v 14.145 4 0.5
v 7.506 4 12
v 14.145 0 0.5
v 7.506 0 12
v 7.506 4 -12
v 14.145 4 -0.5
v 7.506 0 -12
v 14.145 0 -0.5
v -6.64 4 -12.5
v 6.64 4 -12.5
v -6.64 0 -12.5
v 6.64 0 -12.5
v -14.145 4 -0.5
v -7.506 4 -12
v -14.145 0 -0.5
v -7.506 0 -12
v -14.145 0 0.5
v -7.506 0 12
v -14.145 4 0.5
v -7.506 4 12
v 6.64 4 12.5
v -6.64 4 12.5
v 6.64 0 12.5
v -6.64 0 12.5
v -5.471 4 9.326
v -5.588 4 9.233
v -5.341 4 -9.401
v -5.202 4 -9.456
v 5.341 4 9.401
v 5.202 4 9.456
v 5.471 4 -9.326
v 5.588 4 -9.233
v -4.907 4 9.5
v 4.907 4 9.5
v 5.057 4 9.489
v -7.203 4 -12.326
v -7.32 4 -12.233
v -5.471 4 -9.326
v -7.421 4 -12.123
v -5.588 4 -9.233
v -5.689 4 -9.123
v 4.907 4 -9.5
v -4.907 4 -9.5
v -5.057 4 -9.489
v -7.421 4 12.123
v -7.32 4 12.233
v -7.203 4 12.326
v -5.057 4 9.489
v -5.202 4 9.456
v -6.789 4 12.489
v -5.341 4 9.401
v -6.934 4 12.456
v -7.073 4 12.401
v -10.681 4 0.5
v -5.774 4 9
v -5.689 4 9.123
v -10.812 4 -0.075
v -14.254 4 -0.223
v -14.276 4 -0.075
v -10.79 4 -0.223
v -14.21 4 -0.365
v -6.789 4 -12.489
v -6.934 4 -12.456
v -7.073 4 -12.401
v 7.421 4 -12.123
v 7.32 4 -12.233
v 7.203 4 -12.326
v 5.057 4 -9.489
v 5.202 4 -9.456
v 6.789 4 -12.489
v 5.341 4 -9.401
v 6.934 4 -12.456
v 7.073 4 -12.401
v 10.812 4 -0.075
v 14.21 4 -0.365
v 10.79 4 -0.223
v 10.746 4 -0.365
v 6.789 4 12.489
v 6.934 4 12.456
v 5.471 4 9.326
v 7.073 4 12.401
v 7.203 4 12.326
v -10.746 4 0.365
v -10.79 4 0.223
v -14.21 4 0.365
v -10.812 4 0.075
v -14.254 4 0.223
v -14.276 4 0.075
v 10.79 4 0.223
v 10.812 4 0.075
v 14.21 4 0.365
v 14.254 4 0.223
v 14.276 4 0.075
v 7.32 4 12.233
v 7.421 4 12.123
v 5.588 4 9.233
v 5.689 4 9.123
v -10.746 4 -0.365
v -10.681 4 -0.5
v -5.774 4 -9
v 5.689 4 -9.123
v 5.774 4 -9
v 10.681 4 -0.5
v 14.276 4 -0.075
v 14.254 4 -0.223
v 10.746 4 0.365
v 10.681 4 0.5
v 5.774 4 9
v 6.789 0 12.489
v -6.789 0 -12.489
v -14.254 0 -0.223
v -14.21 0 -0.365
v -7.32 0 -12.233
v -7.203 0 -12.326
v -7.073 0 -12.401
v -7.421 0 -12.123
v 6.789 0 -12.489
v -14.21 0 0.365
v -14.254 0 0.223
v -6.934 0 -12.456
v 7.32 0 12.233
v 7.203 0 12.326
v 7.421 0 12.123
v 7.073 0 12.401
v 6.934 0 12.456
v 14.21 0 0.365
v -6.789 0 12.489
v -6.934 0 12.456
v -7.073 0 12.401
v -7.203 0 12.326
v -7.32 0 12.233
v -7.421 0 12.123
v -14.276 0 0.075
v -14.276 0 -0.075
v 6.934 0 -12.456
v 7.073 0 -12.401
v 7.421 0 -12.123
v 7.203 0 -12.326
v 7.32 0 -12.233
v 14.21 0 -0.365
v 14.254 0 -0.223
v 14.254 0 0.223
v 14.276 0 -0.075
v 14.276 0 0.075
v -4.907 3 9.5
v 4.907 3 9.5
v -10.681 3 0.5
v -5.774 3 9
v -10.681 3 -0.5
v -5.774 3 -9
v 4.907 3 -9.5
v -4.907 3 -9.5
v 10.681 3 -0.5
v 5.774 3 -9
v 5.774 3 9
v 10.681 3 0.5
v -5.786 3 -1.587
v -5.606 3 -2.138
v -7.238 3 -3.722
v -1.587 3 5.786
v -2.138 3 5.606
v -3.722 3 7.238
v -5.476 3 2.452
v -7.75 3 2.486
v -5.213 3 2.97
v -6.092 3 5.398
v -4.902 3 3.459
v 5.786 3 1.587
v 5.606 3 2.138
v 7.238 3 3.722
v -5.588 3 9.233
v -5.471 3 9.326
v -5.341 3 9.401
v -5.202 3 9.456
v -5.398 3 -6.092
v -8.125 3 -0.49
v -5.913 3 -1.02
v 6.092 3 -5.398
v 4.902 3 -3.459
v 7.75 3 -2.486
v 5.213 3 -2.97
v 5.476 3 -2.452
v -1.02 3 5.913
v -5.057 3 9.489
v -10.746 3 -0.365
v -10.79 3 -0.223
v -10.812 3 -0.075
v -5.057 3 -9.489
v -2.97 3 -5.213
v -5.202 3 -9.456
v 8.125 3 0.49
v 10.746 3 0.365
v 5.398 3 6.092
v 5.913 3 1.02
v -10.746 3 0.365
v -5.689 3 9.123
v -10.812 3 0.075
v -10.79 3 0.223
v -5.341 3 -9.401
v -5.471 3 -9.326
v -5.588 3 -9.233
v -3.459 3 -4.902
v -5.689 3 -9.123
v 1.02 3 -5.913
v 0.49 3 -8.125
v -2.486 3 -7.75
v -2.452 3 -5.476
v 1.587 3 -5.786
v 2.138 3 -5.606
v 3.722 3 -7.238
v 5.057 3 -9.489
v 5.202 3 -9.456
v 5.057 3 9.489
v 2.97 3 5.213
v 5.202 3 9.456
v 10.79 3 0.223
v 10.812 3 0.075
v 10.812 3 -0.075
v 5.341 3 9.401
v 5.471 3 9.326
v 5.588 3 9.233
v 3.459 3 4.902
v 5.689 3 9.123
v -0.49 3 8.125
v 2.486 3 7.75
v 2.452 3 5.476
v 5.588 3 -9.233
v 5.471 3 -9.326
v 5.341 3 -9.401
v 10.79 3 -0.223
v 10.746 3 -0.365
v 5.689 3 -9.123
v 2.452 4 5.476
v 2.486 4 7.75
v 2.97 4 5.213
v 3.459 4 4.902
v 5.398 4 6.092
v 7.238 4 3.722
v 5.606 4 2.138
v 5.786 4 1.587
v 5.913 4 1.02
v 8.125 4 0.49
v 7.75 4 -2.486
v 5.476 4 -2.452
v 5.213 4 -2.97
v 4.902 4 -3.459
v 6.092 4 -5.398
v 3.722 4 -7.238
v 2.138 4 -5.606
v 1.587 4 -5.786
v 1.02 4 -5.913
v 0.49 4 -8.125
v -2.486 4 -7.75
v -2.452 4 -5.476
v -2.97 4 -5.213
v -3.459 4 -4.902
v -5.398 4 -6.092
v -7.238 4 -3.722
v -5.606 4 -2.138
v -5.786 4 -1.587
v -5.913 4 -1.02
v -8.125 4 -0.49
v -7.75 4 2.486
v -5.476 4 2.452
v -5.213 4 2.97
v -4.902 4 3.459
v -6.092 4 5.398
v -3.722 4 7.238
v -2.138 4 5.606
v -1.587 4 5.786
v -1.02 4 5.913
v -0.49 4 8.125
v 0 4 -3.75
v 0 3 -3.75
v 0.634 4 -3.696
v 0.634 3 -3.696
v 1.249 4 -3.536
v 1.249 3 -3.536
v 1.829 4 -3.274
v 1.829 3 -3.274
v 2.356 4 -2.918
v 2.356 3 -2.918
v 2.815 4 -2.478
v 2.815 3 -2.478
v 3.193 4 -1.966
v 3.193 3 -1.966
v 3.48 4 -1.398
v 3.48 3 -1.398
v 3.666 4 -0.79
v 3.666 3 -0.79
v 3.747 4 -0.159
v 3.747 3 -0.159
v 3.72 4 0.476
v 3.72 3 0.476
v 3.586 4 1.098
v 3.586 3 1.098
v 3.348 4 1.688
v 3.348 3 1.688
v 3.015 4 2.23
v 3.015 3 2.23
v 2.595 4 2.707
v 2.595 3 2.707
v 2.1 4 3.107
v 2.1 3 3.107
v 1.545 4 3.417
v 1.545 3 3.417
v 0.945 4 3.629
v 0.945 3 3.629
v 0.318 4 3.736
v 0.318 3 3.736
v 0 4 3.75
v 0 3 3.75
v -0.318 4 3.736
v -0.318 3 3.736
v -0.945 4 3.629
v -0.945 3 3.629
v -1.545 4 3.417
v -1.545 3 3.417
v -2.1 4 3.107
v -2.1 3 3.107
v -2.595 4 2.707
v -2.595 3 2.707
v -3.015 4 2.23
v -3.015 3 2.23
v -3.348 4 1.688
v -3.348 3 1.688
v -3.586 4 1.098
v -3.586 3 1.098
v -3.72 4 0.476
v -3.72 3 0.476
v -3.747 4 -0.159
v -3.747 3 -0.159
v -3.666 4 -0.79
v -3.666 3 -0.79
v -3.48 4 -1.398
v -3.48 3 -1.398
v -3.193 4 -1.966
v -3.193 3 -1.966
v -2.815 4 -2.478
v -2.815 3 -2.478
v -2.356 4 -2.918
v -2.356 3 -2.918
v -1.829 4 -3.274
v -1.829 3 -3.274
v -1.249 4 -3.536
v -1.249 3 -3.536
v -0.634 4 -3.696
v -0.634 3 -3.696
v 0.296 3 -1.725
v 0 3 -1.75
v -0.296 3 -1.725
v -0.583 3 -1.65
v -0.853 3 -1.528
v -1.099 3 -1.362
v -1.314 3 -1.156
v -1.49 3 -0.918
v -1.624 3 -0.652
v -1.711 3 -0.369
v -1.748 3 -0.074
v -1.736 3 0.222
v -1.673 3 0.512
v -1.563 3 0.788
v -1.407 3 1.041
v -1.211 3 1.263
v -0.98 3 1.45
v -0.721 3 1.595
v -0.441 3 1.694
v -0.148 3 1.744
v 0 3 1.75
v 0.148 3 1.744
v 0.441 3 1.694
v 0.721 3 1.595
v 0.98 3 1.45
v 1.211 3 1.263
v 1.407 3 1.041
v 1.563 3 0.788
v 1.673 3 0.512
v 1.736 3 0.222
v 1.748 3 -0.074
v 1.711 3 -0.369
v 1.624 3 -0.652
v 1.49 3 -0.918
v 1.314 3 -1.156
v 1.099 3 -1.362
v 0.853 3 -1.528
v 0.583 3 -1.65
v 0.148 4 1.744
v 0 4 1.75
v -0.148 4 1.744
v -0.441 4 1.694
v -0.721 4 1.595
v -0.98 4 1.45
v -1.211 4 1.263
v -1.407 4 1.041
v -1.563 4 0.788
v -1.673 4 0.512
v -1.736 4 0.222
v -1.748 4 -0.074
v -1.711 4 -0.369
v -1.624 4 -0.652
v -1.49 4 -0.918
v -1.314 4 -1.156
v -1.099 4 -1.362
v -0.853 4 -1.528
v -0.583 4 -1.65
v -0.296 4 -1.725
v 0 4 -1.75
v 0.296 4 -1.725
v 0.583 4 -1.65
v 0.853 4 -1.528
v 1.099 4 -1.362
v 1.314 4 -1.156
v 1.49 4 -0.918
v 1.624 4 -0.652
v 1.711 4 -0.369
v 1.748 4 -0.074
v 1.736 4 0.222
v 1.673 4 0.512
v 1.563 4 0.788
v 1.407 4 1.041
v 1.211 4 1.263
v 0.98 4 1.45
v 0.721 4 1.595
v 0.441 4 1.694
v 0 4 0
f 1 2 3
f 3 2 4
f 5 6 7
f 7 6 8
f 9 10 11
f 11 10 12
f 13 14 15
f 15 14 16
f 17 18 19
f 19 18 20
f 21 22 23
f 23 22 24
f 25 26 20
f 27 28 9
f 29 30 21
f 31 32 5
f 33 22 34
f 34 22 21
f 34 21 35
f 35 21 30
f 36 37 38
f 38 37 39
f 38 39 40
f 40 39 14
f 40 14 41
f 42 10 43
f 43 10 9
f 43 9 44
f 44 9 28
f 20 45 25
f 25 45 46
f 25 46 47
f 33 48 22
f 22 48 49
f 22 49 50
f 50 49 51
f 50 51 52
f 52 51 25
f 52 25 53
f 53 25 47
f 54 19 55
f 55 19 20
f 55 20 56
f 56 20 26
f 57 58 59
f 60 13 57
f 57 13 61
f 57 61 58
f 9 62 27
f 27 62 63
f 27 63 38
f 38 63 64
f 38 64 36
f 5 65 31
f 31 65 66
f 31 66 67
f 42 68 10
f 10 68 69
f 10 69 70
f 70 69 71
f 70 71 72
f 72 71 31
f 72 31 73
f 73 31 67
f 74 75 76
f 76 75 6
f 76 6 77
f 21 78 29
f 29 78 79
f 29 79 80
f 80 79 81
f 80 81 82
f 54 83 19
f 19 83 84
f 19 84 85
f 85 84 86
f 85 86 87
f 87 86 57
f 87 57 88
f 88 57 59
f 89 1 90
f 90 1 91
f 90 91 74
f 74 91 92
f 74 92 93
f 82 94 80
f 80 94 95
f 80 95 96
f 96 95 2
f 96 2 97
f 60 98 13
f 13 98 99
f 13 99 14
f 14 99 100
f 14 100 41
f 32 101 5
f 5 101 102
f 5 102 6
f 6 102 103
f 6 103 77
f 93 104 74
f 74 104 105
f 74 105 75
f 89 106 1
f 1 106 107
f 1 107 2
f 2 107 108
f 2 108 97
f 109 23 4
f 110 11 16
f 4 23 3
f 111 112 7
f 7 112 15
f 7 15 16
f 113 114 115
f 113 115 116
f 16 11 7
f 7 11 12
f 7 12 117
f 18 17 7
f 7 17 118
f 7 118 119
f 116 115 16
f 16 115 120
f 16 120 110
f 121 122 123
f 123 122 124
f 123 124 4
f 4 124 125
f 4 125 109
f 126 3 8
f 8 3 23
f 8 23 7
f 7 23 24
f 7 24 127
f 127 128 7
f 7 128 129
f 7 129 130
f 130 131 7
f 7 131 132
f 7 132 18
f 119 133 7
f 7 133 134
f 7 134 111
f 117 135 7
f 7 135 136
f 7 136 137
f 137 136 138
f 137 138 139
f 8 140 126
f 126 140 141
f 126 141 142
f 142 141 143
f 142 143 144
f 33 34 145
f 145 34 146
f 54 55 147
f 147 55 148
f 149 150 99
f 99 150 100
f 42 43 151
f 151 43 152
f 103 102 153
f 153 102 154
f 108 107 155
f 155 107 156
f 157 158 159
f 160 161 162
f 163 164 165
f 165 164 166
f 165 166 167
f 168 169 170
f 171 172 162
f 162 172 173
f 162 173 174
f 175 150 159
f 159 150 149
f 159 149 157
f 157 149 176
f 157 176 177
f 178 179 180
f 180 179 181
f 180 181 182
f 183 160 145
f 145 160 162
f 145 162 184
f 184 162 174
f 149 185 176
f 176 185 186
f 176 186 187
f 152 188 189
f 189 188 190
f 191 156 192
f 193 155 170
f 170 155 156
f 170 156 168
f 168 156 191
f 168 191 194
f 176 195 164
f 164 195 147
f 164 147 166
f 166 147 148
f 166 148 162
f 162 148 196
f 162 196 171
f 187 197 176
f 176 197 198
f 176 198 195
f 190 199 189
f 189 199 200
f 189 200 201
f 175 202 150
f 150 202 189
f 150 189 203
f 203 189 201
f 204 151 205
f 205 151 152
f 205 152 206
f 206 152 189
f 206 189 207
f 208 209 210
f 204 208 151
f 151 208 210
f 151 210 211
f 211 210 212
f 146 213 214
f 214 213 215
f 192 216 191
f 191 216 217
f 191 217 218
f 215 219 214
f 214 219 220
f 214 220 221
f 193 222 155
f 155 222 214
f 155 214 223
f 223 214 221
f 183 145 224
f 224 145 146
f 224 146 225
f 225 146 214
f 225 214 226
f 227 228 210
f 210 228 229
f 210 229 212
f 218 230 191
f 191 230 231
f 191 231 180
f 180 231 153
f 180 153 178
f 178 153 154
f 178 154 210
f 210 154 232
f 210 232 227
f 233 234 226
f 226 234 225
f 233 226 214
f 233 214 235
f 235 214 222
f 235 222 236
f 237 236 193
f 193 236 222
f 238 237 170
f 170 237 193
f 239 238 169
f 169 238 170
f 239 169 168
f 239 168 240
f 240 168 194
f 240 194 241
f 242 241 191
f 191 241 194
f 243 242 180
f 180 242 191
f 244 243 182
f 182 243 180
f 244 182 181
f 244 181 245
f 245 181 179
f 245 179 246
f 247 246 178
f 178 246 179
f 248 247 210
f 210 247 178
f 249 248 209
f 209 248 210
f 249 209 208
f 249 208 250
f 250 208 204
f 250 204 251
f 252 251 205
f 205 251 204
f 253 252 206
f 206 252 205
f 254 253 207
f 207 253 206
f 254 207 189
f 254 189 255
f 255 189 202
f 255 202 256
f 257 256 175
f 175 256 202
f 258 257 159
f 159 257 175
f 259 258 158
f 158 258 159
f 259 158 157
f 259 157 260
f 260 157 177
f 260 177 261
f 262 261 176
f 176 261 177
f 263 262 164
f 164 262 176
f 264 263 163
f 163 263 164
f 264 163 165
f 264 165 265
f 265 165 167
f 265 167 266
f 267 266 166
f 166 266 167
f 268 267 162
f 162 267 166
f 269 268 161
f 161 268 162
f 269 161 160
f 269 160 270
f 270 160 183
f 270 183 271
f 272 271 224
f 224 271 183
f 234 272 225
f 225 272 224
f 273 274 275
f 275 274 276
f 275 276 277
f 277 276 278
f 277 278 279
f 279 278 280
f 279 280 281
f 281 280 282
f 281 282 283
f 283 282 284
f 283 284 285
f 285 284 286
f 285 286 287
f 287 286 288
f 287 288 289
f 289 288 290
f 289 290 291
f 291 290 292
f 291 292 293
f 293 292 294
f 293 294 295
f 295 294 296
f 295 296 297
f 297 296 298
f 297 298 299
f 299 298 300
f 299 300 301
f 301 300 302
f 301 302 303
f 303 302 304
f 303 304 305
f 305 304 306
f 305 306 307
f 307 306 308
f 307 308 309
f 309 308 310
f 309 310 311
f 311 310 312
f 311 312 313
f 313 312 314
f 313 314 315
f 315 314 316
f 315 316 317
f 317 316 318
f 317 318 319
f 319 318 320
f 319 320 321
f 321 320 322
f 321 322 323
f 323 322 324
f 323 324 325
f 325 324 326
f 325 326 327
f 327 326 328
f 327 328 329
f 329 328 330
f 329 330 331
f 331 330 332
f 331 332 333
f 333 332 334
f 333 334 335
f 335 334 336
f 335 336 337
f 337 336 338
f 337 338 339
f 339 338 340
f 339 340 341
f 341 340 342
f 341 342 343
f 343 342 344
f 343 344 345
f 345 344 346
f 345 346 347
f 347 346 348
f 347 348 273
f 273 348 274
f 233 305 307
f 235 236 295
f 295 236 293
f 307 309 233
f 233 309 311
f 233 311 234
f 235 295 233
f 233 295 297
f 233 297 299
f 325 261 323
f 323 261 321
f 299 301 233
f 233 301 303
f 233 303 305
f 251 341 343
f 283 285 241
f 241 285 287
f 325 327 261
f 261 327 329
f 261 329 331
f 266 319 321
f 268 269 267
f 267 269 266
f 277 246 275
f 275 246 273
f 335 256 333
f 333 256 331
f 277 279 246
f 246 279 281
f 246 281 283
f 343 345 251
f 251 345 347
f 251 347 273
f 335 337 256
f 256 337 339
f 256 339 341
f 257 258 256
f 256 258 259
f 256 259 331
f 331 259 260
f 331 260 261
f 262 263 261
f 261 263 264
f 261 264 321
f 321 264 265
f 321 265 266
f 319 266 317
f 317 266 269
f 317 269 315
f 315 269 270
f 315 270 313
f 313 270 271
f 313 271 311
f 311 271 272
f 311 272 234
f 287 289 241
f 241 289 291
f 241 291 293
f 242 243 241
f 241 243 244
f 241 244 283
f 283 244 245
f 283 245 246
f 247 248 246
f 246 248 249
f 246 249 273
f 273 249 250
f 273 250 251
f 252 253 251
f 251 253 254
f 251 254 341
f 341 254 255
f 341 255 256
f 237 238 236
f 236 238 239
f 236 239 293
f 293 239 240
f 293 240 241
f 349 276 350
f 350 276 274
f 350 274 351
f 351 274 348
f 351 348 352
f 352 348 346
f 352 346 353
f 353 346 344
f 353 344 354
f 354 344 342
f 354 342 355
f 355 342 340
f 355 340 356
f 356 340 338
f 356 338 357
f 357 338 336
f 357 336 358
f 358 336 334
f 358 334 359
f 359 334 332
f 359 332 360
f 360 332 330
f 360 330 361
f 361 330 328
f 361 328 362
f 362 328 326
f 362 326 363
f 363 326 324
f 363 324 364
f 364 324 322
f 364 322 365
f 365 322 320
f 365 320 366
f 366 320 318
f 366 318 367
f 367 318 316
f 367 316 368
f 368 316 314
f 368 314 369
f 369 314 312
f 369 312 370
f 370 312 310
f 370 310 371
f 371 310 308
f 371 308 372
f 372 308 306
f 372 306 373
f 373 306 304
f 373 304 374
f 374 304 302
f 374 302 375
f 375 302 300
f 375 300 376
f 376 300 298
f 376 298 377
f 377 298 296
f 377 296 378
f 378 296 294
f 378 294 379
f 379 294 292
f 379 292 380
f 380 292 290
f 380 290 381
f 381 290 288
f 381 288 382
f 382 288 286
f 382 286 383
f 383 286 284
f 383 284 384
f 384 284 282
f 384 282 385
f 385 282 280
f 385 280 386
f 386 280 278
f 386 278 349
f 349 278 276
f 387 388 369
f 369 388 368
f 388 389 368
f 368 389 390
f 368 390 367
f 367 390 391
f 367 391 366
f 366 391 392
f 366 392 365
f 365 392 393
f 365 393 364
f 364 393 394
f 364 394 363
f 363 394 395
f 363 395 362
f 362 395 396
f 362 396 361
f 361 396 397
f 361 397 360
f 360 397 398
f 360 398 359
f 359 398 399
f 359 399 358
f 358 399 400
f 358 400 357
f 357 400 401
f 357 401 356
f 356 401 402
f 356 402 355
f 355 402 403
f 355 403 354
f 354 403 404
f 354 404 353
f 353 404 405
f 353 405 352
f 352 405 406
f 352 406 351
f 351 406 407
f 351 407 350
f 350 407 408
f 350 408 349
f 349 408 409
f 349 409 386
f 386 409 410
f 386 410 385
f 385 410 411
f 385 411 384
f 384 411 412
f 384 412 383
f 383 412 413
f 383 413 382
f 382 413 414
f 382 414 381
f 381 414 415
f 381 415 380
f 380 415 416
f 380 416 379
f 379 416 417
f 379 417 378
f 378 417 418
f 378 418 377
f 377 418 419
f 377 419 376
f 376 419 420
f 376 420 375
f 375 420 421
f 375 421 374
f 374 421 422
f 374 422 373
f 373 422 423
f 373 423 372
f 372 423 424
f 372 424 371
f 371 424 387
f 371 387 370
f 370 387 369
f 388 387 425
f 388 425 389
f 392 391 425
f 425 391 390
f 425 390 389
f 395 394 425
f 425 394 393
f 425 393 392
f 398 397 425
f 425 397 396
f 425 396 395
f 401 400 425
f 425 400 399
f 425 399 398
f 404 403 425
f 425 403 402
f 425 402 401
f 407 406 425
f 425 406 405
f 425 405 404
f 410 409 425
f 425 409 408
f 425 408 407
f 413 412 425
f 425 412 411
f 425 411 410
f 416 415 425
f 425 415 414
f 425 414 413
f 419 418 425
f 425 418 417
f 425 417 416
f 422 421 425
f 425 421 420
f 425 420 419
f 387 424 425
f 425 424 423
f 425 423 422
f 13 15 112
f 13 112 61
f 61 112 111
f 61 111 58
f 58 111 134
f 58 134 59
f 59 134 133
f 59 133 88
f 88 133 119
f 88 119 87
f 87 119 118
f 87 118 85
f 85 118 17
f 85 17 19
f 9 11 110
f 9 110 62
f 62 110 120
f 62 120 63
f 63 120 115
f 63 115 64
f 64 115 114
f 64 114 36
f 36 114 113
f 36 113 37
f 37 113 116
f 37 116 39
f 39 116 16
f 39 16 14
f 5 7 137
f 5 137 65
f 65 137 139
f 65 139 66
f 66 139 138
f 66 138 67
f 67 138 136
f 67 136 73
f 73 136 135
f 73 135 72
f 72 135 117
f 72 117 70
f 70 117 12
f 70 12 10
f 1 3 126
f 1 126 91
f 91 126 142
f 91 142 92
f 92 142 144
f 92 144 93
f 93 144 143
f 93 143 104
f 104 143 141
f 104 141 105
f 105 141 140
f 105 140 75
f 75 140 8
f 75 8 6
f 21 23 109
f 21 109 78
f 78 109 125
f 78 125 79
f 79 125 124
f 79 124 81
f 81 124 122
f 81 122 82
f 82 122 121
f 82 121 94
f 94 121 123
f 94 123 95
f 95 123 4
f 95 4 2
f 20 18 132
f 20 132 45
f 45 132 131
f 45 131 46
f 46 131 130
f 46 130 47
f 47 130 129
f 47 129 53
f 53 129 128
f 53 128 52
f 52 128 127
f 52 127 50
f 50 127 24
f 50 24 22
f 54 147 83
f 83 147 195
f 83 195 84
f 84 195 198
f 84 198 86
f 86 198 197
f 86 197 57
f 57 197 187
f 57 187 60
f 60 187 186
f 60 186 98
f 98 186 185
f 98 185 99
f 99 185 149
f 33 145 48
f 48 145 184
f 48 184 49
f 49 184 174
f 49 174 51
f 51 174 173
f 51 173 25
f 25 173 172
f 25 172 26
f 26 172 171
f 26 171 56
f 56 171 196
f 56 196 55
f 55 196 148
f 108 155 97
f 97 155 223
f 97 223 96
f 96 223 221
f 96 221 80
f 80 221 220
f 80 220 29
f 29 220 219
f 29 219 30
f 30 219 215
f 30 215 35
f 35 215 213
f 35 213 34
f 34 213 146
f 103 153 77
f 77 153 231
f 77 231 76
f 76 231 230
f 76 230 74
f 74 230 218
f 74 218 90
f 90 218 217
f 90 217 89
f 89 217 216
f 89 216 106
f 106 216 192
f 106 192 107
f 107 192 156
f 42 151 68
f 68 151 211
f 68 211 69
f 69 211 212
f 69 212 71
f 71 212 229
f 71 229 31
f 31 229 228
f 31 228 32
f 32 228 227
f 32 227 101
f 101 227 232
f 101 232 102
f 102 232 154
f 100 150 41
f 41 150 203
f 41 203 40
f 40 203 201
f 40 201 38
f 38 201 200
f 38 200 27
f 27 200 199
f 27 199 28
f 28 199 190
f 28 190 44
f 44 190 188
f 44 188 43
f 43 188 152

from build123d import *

# Parameters (mm, degrees)
EXTRUDE_1_DEPTH     = 4
CUT_EXTRUDE_1_DEPTH = 1
SKETCH_3_R          = 3.75
SKETCH_3_R_2        = 1.75
EXTRUDE_2_DEPTH     = 1
FILLET_1_R          = 1


with BuildPart() as part:
    # 草图1 → 凸台-拉伸1 (new body)
    with BuildSketch(Plane(origin=(0, 0, 0), x_dir=(1, 0, 0), z_dir=(0, 1, 0))):
        Polygon((14.43375673, 0), (7.216878365, 12.5), (-7.216878365, 12.5), (-14.43375673, 0), (-7.216878365, -12.5), (7.216878365, -12.5), align=None)
    extrude(amount=EXTRUDE_1_DEPTH)

    # 草图2 → 切除-拉伸1 (cut)
    with BuildSketch(Plane(origin=(0, 4, 0), x_dir=(1, 0, 0), z_dir=(0, 1, 0))):
        Polygon((5.484827557, -9.5), (10.969655115, 0), (5.484827557, 9.5), (-5.484827557, 9.5), (-10.969655115, 0), (-5.484827557, -9.5), align=None)
    extrude(amount=-CUT_EXTRUDE_1_DEPTH, mode=Mode.SUBTRACT)

    # 草图3 → 凸台-拉伸2 (add)
    # profile 1 of 2: a face of its own
    with BuildSketch(Plane(origin=(0, 3, 0), x_dir=(1, 0, 0), z_dir=(0, 1, 0))):
        with BuildLine():
            Line((8.124640736, -0.490115197), (7.750329512, 2.486441724))
            Line((7.750329512, 2.486441724), (5.47592438, 2.452397232))
            ThreePointArc((5.47592438, 2.452397232), (5.213474627, 2.969794996), (4.902281736, 3.4594268))
            Line((4.902281736, 3.4594268), (6.091552339, 5.39842478))
            Line((6.091552339, 5.39842478), (3.72213075, 7.238490359))
            Line((3.72213075, 7.238490359), (2.137956549, 5.606169975))
            ThreePointArc((2.137956549, 5.606169975), (1.586521082, 5.786445442), (1.02025251, 5.912620808))
            Line((1.02025251, 5.912620808), (0.490115197, 8.124640736))
            Line((0.490115197, 8.124640736), (-2.486441724, 7.750329512))
            Line((-2.486441724, 7.750329512), (-2.452397232, 5.47592438))
            ThreePointArc((-2.452397232, 5.47592438), (-2.969794996, 5.213474627), (-3.4594268, 4.902281736))
            Line((-3.4594268, 4.902281736), (-5.39842478, 6.091552339))
            Line((-5.39842478, 6.091552339), (-7.238490359, 3.72213075))
            Line((-7.238490359, 3.72213075), (-5.606169975, 2.137956549))
            ThreePointArc((-5.606169975, 2.137956549), (-5.786445442, 1.586521082), (-5.912620808, 1.02025251))
            Line((-5.912620808, 1.02025251), (-8.124640736, 0.490115197))
            Line((-8.124640736, 0.490115197), (-7.750329512, -2.486441724))
            Line((-7.750329512, -2.486441724), (-5.47592438, -2.452397232))
            ThreePointArc((-5.47592438, -2.452397232), (-5.213474627, -2.969794996), (-4.902281736, -3.4594268))
            Line((-4.902281736, -3.4594268), (-6.091552339, -5.39842478))
            Line((-6.091552339, -5.39842478), (-3.72213075, -7.238490359))
            Line((-3.72213075, -7.238490359), (-2.137956549, -5.606169975))
            ThreePointArc((-2.137956549, -5.606169975), (-1.586521082, -5.786445442), (-1.02025251, -5.912620808))
            Line((-1.02025251, -5.912620808), (-0.490115197, -8.124640736))
            Line((-0.490115197, -8.124640736), (2.486441724, -7.750329512))
            Line((2.486441724, -7.750329512), (2.452397232, -5.47592438))
            ThreePointArc((2.452397232, -5.47592438), (2.969794996, -5.213474627), (3.4594268, -4.902281736))
            Line((3.4594268, -4.902281736), (5.39842478, -6.091552339))
            Line((5.39842478, -6.091552339), (7.238490359, -3.72213075))
            Line((7.238490359, -3.72213075), (5.606169975, -2.137956549))
            ThreePointArc((5.606169975, -2.137956549), (5.786445442, -1.586521082), (5.912620808, -1.02025251))
            Line((5.912620808, -1.02025251), (8.124640736, -0.490115197))
        make_face()
        with Locations(Location((0, 0, 0), (0, 0, 270))):
            Circle(SKETCH_3_R, mode=Mode.SUBTRACT)
    # profile 2 of 2: a face of its own
    with BuildSketch(Plane(origin=(0, 3, 0), x_dir=(1, 0, 0), z_dir=(0, 1, 0))):
        with Locations(Location((0, 0, 0), (0, 0, 270))):
            Circle(SKETCH_3_R_2)
    extrude(amount=EXTRUDE_2_DEPTH)

    # 圆角1
    fillet_1_edges = [part.edges().sort_by_distance(p)[0] for p in [
        (7.216878365, 2, 12.5),
        (-7.216878365, 2, 12.5),
        (-14.43375673, 2, 0),
        (-7.216878365, 2, -12.5),
        (7.216878365, 2, -12.5),
        (14.43375673, 2, 0),
        (5.484827557, 3.5, 9.5),
        (-5.484827557, 3.5, 9.5),
        (-10.969655115, 3.5, 0),
        (-5.484827557, 3.5, -9.5),
        (5.484827557, 3.5, -9.5),
        (10.969655115, 3.5, 0),
    ]]
    fillet(fillet_1_edges, radius=FILLET_1_R)


solid = part.part
